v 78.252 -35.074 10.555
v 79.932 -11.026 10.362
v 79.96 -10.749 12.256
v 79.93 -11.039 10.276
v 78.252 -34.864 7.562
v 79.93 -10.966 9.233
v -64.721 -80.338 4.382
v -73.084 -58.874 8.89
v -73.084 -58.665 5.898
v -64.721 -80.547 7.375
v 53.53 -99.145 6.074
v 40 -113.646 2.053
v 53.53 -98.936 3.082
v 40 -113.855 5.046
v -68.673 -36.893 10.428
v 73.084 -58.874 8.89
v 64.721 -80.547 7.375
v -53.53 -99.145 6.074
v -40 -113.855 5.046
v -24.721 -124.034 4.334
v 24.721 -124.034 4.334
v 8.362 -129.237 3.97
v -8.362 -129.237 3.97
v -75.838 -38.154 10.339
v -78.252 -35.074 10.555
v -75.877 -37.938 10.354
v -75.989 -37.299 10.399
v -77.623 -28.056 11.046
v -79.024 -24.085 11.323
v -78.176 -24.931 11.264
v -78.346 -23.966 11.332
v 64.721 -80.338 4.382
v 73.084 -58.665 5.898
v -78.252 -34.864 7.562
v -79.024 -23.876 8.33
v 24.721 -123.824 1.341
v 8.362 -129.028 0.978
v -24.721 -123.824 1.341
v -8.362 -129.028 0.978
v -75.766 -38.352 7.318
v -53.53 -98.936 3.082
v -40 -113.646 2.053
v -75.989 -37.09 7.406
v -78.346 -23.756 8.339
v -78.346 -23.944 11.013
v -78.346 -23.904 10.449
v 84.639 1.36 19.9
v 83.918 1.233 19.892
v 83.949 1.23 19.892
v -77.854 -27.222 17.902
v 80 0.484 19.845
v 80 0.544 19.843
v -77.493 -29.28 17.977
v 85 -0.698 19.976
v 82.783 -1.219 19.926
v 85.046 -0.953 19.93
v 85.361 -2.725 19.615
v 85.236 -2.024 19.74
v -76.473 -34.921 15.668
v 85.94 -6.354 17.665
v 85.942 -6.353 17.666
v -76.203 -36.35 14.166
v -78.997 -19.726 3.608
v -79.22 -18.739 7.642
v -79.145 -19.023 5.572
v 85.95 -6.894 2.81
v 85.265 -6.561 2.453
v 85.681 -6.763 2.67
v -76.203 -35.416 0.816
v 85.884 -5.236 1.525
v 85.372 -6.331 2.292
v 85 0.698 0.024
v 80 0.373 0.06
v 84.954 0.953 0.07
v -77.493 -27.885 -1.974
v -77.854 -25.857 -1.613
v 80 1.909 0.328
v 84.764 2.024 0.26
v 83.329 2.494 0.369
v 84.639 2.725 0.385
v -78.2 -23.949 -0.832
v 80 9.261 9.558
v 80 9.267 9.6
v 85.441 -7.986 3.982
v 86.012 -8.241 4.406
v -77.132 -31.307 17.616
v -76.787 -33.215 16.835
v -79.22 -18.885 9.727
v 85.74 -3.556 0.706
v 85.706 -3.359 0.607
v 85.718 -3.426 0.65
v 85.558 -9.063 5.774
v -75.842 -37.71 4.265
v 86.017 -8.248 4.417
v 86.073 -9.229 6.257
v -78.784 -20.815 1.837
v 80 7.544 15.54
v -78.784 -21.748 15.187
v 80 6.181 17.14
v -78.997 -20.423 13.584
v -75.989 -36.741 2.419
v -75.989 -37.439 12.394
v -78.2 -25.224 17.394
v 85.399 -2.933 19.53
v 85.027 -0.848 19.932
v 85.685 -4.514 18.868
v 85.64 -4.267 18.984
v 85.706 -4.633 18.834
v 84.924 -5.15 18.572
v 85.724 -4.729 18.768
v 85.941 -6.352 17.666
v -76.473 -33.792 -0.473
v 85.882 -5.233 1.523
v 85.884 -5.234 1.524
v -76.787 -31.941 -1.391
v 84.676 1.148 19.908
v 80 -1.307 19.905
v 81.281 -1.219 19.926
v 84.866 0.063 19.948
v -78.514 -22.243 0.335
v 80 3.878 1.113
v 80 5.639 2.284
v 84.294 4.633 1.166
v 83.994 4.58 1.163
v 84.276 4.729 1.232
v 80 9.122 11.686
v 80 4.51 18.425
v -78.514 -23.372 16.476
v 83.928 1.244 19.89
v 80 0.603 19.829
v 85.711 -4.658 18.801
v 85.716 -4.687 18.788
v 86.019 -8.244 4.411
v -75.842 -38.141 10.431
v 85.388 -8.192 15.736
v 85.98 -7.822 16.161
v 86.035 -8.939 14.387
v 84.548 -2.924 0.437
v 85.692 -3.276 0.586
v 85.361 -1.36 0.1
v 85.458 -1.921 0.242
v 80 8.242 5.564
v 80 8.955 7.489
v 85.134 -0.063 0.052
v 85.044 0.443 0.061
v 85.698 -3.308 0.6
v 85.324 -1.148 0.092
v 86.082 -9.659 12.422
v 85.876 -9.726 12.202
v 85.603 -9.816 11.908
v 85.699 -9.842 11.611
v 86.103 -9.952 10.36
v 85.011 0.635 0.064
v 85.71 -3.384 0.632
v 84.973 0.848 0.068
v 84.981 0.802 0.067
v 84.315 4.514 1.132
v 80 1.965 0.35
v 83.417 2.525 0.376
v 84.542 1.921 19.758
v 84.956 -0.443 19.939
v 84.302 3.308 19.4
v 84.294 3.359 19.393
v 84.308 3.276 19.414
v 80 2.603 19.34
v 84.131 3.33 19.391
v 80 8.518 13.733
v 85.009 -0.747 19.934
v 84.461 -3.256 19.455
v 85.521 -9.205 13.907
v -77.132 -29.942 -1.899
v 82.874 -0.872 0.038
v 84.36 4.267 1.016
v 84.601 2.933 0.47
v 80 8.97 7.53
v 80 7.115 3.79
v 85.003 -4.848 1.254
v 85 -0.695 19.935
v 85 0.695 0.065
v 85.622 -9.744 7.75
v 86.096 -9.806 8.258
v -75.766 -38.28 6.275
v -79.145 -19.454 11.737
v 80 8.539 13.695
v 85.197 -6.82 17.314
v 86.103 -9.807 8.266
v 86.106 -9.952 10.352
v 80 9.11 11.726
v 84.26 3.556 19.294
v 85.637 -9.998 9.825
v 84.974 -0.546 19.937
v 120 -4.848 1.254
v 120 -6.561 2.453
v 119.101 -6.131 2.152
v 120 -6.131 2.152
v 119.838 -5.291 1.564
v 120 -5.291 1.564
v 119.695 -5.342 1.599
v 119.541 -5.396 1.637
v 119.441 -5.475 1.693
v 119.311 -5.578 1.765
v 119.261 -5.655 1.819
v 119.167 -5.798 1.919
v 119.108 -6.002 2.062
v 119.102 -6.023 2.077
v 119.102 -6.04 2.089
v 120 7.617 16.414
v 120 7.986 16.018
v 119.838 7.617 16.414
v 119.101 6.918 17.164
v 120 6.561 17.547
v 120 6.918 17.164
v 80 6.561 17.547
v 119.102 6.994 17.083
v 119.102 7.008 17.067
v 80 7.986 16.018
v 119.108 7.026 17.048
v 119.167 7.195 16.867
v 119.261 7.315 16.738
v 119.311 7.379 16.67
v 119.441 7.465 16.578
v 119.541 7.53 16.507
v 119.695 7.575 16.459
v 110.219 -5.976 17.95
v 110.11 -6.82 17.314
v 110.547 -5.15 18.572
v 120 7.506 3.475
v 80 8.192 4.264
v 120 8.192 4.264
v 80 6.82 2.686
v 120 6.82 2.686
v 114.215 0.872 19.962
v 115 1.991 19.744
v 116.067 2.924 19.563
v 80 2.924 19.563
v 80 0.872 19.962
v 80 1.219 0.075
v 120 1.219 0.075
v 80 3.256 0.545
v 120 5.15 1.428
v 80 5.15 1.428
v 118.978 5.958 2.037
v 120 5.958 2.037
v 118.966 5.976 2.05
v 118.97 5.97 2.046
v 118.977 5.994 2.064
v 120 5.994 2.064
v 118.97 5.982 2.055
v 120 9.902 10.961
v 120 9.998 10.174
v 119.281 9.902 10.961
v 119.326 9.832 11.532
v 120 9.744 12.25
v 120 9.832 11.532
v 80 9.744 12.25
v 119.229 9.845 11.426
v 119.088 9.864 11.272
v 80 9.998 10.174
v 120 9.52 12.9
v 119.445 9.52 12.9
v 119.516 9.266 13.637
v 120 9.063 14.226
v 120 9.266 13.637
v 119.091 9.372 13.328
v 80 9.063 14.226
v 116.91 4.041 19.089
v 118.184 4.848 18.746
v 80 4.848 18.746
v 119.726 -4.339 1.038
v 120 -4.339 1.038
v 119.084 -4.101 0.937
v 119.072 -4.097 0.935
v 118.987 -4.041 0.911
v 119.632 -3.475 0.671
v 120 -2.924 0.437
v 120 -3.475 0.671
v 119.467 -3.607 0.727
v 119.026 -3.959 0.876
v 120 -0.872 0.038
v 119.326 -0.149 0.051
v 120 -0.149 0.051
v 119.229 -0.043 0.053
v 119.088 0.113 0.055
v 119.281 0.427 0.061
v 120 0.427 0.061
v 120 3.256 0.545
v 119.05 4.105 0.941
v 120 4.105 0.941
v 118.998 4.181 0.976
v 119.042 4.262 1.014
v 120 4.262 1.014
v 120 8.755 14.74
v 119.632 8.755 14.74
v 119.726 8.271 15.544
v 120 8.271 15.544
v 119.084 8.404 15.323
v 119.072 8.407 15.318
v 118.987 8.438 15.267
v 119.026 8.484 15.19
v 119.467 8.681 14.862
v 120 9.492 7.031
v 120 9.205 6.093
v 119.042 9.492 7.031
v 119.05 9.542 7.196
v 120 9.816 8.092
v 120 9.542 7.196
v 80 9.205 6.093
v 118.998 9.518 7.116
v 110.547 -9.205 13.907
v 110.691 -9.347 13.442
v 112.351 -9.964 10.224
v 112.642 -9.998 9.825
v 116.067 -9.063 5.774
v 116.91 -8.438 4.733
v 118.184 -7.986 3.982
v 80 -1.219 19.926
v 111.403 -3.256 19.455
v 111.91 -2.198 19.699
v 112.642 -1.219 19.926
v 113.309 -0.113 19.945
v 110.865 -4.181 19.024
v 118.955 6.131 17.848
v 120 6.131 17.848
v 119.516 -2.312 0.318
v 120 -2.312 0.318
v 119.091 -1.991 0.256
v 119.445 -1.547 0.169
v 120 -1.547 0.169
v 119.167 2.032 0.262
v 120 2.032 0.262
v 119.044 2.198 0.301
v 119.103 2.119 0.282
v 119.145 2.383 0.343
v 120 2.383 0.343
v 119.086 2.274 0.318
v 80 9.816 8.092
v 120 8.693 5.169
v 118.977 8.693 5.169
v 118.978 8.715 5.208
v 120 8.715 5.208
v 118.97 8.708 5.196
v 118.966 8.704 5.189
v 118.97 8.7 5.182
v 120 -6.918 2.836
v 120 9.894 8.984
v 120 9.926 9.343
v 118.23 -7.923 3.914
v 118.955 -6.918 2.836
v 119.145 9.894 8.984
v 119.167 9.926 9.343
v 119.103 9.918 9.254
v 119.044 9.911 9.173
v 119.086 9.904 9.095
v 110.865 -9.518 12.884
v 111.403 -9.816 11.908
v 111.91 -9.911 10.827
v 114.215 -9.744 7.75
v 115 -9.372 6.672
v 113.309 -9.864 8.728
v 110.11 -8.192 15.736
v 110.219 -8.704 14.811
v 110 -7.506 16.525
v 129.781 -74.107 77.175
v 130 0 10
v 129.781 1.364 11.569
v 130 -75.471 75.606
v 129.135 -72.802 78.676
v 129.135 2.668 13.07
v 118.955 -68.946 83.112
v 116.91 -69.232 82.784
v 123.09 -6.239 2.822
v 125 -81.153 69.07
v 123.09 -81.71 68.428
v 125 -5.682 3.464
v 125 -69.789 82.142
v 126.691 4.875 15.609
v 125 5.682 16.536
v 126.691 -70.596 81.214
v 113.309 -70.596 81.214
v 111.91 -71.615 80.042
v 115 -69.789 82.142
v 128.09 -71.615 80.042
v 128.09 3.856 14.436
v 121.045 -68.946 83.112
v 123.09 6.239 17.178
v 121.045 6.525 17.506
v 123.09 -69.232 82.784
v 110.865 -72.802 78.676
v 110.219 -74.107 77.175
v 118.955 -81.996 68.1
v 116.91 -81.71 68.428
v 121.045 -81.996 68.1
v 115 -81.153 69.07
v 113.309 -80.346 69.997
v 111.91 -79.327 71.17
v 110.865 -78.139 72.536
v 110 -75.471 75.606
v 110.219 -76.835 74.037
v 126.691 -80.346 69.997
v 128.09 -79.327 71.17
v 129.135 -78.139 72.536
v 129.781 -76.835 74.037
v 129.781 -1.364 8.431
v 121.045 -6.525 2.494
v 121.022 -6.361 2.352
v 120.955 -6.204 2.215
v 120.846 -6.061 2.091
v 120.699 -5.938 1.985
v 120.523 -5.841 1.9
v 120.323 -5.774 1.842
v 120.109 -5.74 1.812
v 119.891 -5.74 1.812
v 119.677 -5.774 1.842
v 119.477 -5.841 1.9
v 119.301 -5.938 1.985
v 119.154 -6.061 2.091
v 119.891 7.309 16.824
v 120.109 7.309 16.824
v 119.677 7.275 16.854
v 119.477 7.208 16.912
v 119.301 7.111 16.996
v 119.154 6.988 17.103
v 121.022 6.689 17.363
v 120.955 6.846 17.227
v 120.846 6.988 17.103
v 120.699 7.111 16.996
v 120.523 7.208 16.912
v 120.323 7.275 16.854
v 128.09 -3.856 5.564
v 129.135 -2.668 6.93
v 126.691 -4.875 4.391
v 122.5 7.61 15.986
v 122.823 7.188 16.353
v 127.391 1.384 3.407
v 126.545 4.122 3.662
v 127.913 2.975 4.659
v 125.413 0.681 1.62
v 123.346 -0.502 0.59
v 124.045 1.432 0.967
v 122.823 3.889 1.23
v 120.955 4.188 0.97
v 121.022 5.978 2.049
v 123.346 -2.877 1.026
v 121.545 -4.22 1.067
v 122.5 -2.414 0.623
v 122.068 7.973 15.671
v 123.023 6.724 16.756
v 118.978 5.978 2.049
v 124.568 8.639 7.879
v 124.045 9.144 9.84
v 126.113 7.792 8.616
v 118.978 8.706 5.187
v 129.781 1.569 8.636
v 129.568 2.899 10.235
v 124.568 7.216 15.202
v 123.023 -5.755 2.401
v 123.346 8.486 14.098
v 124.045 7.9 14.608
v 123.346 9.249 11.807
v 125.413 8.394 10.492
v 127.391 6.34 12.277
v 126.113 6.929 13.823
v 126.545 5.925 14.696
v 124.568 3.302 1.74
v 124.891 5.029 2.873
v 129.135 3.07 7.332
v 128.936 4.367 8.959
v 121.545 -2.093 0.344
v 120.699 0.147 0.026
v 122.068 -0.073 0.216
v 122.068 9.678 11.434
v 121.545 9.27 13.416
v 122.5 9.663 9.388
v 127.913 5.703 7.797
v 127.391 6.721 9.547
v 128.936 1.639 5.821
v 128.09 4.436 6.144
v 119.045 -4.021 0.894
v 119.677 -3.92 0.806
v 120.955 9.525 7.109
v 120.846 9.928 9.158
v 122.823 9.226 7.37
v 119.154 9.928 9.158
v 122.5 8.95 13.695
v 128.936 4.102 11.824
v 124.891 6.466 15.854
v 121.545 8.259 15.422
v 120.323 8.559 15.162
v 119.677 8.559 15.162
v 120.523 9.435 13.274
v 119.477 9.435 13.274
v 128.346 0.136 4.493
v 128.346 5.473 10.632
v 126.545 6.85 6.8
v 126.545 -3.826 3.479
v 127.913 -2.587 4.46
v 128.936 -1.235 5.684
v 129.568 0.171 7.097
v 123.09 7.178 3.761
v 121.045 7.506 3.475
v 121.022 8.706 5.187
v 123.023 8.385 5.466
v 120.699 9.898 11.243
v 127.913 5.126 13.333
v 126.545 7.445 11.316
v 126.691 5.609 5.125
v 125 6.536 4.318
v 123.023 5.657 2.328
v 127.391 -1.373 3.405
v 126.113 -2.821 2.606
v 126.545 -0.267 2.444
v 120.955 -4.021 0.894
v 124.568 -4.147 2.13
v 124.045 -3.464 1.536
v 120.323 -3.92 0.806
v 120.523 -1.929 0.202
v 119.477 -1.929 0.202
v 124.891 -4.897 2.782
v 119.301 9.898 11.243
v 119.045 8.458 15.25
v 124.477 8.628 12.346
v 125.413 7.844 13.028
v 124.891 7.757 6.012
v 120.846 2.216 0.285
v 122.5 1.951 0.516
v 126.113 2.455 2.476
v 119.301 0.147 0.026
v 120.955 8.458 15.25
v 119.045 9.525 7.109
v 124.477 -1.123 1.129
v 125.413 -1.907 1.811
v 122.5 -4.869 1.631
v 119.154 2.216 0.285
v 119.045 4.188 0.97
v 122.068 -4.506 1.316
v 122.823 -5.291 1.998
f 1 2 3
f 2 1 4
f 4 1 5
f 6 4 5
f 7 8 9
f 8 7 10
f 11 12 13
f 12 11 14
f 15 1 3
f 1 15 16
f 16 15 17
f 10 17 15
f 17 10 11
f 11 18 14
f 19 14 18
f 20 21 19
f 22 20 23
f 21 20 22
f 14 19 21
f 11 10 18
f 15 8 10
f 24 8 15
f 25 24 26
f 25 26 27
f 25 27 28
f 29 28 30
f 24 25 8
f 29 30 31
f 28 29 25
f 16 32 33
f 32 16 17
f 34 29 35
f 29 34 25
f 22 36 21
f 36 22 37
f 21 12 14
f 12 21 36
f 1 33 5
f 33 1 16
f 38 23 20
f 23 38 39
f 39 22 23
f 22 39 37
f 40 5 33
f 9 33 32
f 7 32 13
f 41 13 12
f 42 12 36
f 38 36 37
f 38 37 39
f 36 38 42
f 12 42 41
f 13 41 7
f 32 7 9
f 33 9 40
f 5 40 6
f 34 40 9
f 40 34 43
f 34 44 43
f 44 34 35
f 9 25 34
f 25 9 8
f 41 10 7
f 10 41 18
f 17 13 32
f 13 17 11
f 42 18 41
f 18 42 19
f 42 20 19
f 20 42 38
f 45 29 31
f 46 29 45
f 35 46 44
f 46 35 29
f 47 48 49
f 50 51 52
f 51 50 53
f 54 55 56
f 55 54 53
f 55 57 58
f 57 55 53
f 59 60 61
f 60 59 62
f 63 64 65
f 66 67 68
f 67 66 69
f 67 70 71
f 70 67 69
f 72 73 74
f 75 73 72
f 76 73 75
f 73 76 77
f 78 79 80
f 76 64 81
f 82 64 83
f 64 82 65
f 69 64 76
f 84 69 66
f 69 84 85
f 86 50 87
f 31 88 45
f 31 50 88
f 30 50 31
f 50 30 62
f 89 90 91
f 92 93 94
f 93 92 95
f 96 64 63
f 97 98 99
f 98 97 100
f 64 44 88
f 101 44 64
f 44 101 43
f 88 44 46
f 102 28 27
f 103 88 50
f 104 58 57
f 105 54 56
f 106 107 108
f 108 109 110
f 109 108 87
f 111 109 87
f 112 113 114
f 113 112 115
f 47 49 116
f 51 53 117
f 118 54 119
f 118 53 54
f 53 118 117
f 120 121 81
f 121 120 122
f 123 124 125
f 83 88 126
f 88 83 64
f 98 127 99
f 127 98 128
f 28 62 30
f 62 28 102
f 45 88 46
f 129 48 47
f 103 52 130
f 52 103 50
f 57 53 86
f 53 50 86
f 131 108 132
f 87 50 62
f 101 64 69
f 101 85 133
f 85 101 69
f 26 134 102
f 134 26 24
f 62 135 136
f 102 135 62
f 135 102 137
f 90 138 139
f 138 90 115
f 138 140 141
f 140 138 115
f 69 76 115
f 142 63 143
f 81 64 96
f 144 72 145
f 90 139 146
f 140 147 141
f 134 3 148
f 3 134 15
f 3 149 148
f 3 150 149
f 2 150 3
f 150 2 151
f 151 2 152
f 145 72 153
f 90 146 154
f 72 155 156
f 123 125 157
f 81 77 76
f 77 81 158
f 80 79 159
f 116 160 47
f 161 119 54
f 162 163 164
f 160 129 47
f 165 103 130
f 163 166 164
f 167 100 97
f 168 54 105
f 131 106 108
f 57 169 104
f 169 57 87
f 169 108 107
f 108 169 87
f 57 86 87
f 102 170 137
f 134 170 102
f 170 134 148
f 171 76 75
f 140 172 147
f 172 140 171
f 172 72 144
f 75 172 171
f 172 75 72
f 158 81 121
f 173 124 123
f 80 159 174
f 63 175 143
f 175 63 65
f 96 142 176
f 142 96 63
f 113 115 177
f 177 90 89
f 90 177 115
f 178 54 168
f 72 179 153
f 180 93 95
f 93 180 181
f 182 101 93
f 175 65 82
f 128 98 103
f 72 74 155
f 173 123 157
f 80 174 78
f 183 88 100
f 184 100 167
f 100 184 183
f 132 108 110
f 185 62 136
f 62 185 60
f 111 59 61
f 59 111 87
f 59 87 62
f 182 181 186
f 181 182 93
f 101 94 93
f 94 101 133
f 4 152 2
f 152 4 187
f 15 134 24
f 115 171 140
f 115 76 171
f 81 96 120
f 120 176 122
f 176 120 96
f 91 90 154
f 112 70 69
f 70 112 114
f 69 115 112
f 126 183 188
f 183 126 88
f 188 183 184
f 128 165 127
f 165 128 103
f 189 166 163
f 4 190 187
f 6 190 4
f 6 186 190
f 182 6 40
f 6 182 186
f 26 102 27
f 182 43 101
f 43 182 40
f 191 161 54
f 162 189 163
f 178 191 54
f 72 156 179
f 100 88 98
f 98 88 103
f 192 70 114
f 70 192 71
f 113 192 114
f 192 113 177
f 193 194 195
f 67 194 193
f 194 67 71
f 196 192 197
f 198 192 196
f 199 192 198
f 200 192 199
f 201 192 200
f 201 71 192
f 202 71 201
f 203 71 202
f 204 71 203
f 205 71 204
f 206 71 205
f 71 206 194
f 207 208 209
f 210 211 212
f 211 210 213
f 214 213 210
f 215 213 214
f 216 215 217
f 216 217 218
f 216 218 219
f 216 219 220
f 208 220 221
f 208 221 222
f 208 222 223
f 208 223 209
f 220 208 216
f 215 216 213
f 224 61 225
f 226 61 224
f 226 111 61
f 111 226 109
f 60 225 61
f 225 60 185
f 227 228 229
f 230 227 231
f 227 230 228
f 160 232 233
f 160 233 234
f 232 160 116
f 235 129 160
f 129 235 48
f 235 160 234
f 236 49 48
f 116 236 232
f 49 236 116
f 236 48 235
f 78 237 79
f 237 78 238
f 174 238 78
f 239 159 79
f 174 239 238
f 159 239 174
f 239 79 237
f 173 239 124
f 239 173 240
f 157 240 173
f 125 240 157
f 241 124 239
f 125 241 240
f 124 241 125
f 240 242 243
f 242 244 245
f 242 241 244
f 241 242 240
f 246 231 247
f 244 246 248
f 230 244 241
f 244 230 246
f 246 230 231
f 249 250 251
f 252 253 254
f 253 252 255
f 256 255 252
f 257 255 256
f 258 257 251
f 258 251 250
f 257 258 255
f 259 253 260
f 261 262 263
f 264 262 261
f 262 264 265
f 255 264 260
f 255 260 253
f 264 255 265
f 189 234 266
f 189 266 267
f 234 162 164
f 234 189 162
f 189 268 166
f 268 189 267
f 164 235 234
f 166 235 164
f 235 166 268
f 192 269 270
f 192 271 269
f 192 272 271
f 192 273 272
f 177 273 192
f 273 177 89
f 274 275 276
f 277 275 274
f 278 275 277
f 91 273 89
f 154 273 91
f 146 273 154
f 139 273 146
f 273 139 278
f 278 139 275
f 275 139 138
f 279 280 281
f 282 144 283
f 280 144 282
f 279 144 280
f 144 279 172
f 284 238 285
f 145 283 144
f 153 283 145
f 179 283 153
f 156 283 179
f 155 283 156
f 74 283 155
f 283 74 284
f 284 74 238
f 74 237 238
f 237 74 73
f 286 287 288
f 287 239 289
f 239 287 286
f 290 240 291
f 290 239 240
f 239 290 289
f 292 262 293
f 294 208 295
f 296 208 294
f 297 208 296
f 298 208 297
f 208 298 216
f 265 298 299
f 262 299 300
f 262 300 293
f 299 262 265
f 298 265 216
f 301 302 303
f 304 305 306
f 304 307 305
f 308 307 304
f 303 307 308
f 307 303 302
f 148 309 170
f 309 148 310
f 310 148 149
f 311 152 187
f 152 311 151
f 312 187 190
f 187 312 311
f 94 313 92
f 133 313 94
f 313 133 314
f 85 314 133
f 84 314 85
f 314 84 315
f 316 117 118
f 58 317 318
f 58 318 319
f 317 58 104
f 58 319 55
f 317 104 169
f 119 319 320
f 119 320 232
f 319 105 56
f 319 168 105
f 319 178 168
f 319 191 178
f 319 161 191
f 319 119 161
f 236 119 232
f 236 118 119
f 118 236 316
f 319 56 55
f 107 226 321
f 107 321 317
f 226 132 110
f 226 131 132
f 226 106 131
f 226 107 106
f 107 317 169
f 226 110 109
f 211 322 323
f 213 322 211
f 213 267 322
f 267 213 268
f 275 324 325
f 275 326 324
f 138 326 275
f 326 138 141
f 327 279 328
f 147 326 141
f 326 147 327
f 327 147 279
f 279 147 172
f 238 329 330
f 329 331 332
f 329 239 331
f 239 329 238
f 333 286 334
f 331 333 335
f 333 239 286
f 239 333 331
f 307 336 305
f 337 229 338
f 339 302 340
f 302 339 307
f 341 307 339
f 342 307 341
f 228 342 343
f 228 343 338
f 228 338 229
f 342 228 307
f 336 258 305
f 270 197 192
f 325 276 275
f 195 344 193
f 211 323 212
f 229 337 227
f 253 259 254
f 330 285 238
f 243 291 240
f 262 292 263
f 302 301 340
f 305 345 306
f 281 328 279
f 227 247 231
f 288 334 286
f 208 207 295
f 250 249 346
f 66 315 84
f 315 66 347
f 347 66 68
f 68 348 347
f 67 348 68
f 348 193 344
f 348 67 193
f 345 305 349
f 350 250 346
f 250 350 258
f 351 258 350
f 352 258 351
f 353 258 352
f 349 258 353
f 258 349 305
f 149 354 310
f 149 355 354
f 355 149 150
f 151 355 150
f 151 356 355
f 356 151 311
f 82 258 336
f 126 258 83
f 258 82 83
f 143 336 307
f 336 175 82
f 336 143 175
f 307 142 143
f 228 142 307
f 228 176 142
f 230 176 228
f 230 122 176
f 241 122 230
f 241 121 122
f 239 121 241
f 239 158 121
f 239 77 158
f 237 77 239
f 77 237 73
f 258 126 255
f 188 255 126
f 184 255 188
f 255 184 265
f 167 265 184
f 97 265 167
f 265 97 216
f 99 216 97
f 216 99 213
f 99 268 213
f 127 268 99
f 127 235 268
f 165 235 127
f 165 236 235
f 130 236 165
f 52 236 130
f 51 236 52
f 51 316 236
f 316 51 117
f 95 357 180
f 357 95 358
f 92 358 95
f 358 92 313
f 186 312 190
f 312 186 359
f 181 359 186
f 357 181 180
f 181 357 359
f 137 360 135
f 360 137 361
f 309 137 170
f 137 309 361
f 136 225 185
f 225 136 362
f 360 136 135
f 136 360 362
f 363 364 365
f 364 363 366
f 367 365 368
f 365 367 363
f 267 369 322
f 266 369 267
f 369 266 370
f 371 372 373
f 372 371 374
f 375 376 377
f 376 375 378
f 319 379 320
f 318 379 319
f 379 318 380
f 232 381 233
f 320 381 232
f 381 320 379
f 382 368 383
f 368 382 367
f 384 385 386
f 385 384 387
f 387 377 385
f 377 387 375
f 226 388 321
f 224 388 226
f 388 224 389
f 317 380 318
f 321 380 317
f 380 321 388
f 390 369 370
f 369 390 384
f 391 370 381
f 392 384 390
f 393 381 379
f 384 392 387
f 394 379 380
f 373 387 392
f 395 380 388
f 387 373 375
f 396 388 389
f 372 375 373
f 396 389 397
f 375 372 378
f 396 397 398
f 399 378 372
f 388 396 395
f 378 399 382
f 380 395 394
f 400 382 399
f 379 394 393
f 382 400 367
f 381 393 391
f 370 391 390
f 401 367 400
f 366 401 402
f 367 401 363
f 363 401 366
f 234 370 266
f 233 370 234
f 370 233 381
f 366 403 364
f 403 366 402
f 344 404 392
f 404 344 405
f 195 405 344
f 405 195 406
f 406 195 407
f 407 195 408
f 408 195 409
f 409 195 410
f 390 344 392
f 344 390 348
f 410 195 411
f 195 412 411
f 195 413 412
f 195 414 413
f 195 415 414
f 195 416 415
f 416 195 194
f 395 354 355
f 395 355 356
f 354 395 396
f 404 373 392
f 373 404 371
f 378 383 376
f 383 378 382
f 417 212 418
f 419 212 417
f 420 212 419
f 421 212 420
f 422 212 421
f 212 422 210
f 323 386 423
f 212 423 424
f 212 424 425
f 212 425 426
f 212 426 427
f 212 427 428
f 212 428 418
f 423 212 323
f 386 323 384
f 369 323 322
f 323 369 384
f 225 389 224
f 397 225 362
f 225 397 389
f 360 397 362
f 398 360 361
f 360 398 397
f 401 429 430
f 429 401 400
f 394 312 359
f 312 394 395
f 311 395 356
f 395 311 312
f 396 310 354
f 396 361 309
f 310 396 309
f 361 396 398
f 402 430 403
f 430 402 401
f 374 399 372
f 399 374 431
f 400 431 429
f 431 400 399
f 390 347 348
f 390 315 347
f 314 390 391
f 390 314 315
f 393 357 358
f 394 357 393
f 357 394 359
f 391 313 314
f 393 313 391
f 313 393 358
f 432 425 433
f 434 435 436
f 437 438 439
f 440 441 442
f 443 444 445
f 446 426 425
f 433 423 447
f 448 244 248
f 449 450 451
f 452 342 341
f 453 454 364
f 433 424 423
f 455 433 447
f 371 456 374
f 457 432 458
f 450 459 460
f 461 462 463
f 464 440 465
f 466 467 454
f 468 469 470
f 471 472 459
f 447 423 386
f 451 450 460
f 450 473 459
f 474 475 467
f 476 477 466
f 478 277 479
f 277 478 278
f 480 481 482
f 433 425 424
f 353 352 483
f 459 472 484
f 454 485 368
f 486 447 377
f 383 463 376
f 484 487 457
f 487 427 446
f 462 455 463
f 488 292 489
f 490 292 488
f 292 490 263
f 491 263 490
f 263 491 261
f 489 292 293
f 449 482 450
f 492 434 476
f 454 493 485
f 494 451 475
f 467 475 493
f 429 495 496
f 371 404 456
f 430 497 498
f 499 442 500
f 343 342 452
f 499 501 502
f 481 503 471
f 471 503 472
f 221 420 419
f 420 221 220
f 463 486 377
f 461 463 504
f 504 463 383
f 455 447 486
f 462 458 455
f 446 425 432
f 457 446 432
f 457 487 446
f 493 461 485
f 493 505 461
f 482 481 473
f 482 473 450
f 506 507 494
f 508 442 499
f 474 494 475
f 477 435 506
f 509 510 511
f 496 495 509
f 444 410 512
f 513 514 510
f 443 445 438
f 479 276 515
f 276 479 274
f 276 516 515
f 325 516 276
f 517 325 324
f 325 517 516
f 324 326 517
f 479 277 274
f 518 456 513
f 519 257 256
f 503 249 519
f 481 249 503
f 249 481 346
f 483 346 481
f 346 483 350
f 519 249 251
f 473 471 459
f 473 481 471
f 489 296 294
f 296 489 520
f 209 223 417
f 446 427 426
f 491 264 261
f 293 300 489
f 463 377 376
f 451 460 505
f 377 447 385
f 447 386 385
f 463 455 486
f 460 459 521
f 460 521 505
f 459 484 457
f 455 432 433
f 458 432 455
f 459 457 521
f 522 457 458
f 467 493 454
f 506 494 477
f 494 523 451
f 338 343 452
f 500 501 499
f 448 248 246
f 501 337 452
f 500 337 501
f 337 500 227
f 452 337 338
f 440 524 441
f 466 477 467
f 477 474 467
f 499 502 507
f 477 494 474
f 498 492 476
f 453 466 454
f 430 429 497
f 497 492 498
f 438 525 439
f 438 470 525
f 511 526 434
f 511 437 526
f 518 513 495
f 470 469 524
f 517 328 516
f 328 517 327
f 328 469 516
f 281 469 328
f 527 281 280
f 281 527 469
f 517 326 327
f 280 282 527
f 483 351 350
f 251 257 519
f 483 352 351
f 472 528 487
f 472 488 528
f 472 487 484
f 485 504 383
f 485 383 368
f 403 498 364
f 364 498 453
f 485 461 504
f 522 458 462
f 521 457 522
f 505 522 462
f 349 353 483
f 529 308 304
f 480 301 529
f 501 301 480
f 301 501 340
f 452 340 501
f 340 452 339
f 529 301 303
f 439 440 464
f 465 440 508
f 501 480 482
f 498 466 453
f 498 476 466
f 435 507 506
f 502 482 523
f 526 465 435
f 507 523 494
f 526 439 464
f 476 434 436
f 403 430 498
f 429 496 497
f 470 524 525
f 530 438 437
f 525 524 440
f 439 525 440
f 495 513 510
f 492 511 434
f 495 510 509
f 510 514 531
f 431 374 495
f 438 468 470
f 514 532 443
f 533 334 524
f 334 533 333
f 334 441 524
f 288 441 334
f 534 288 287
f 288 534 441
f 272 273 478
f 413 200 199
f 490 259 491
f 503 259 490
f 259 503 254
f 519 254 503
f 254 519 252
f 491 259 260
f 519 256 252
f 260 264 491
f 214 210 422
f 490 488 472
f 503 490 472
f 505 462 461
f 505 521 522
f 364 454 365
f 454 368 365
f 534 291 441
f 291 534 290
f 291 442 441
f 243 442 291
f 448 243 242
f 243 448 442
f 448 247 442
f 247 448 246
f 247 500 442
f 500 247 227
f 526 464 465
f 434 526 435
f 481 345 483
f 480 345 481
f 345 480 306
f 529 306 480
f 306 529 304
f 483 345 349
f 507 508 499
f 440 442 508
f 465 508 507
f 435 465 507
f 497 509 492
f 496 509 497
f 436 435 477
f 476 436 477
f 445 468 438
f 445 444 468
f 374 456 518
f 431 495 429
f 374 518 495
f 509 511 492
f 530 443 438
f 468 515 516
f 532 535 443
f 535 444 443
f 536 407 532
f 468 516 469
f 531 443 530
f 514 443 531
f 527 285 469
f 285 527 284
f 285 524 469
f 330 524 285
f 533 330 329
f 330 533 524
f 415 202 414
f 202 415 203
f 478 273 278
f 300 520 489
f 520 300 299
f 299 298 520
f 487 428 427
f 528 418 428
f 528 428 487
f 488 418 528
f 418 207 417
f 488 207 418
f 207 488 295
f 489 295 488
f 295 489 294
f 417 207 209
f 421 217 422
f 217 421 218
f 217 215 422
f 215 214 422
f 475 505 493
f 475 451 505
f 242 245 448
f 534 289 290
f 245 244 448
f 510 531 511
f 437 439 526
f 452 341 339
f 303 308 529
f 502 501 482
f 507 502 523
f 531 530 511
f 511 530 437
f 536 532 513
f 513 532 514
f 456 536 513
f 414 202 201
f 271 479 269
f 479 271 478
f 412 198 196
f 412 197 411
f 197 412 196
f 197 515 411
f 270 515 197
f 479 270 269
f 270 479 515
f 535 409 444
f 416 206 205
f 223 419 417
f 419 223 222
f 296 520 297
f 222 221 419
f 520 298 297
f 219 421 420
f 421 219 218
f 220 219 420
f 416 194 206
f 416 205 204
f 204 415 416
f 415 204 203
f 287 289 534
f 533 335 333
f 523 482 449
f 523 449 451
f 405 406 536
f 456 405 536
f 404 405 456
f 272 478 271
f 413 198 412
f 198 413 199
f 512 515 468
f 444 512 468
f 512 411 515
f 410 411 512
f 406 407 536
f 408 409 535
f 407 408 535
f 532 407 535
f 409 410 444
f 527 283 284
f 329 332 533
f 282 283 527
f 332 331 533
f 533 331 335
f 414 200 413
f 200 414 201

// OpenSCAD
radius = 80;
scale = 1.5;
thickness = 3;

handle_connect_length = 40;
handle_length = 100;
handle_width = 10;

translate([0, 0, handle_width])
rotate([-41, 0, 0]) {
    rotate([45, 0, 0]) {
        translate([0, -10, 0]) difference() {
            scale([1, scale, 1]) cylinder(r=radius, thickness);
            rotate([0, 0, 10]) translate([-2 * radius, 0, 0]) cube([4 * radius, 2 * scale * radius, thickness]);
        }
        translate([radius + 5, -0, 0]) rotate([0, -90, 10]) cylinder(r=handle_width, 2 * radius + 5);
    }
    
    translate([2 * radius - radius, 0, 0]) rotate([0, 90, 0]) cylinder(r=handle_width, handle_connect_length);
    translate([2 * radius + -radius + handle_connect_length, 0]) rotate([90, 0, 0]) cylinder(r=handle_width, handle_length);
    translate([2 * radius + -radius + handle_connect_length, 0]) sphere(handle_width);
}
